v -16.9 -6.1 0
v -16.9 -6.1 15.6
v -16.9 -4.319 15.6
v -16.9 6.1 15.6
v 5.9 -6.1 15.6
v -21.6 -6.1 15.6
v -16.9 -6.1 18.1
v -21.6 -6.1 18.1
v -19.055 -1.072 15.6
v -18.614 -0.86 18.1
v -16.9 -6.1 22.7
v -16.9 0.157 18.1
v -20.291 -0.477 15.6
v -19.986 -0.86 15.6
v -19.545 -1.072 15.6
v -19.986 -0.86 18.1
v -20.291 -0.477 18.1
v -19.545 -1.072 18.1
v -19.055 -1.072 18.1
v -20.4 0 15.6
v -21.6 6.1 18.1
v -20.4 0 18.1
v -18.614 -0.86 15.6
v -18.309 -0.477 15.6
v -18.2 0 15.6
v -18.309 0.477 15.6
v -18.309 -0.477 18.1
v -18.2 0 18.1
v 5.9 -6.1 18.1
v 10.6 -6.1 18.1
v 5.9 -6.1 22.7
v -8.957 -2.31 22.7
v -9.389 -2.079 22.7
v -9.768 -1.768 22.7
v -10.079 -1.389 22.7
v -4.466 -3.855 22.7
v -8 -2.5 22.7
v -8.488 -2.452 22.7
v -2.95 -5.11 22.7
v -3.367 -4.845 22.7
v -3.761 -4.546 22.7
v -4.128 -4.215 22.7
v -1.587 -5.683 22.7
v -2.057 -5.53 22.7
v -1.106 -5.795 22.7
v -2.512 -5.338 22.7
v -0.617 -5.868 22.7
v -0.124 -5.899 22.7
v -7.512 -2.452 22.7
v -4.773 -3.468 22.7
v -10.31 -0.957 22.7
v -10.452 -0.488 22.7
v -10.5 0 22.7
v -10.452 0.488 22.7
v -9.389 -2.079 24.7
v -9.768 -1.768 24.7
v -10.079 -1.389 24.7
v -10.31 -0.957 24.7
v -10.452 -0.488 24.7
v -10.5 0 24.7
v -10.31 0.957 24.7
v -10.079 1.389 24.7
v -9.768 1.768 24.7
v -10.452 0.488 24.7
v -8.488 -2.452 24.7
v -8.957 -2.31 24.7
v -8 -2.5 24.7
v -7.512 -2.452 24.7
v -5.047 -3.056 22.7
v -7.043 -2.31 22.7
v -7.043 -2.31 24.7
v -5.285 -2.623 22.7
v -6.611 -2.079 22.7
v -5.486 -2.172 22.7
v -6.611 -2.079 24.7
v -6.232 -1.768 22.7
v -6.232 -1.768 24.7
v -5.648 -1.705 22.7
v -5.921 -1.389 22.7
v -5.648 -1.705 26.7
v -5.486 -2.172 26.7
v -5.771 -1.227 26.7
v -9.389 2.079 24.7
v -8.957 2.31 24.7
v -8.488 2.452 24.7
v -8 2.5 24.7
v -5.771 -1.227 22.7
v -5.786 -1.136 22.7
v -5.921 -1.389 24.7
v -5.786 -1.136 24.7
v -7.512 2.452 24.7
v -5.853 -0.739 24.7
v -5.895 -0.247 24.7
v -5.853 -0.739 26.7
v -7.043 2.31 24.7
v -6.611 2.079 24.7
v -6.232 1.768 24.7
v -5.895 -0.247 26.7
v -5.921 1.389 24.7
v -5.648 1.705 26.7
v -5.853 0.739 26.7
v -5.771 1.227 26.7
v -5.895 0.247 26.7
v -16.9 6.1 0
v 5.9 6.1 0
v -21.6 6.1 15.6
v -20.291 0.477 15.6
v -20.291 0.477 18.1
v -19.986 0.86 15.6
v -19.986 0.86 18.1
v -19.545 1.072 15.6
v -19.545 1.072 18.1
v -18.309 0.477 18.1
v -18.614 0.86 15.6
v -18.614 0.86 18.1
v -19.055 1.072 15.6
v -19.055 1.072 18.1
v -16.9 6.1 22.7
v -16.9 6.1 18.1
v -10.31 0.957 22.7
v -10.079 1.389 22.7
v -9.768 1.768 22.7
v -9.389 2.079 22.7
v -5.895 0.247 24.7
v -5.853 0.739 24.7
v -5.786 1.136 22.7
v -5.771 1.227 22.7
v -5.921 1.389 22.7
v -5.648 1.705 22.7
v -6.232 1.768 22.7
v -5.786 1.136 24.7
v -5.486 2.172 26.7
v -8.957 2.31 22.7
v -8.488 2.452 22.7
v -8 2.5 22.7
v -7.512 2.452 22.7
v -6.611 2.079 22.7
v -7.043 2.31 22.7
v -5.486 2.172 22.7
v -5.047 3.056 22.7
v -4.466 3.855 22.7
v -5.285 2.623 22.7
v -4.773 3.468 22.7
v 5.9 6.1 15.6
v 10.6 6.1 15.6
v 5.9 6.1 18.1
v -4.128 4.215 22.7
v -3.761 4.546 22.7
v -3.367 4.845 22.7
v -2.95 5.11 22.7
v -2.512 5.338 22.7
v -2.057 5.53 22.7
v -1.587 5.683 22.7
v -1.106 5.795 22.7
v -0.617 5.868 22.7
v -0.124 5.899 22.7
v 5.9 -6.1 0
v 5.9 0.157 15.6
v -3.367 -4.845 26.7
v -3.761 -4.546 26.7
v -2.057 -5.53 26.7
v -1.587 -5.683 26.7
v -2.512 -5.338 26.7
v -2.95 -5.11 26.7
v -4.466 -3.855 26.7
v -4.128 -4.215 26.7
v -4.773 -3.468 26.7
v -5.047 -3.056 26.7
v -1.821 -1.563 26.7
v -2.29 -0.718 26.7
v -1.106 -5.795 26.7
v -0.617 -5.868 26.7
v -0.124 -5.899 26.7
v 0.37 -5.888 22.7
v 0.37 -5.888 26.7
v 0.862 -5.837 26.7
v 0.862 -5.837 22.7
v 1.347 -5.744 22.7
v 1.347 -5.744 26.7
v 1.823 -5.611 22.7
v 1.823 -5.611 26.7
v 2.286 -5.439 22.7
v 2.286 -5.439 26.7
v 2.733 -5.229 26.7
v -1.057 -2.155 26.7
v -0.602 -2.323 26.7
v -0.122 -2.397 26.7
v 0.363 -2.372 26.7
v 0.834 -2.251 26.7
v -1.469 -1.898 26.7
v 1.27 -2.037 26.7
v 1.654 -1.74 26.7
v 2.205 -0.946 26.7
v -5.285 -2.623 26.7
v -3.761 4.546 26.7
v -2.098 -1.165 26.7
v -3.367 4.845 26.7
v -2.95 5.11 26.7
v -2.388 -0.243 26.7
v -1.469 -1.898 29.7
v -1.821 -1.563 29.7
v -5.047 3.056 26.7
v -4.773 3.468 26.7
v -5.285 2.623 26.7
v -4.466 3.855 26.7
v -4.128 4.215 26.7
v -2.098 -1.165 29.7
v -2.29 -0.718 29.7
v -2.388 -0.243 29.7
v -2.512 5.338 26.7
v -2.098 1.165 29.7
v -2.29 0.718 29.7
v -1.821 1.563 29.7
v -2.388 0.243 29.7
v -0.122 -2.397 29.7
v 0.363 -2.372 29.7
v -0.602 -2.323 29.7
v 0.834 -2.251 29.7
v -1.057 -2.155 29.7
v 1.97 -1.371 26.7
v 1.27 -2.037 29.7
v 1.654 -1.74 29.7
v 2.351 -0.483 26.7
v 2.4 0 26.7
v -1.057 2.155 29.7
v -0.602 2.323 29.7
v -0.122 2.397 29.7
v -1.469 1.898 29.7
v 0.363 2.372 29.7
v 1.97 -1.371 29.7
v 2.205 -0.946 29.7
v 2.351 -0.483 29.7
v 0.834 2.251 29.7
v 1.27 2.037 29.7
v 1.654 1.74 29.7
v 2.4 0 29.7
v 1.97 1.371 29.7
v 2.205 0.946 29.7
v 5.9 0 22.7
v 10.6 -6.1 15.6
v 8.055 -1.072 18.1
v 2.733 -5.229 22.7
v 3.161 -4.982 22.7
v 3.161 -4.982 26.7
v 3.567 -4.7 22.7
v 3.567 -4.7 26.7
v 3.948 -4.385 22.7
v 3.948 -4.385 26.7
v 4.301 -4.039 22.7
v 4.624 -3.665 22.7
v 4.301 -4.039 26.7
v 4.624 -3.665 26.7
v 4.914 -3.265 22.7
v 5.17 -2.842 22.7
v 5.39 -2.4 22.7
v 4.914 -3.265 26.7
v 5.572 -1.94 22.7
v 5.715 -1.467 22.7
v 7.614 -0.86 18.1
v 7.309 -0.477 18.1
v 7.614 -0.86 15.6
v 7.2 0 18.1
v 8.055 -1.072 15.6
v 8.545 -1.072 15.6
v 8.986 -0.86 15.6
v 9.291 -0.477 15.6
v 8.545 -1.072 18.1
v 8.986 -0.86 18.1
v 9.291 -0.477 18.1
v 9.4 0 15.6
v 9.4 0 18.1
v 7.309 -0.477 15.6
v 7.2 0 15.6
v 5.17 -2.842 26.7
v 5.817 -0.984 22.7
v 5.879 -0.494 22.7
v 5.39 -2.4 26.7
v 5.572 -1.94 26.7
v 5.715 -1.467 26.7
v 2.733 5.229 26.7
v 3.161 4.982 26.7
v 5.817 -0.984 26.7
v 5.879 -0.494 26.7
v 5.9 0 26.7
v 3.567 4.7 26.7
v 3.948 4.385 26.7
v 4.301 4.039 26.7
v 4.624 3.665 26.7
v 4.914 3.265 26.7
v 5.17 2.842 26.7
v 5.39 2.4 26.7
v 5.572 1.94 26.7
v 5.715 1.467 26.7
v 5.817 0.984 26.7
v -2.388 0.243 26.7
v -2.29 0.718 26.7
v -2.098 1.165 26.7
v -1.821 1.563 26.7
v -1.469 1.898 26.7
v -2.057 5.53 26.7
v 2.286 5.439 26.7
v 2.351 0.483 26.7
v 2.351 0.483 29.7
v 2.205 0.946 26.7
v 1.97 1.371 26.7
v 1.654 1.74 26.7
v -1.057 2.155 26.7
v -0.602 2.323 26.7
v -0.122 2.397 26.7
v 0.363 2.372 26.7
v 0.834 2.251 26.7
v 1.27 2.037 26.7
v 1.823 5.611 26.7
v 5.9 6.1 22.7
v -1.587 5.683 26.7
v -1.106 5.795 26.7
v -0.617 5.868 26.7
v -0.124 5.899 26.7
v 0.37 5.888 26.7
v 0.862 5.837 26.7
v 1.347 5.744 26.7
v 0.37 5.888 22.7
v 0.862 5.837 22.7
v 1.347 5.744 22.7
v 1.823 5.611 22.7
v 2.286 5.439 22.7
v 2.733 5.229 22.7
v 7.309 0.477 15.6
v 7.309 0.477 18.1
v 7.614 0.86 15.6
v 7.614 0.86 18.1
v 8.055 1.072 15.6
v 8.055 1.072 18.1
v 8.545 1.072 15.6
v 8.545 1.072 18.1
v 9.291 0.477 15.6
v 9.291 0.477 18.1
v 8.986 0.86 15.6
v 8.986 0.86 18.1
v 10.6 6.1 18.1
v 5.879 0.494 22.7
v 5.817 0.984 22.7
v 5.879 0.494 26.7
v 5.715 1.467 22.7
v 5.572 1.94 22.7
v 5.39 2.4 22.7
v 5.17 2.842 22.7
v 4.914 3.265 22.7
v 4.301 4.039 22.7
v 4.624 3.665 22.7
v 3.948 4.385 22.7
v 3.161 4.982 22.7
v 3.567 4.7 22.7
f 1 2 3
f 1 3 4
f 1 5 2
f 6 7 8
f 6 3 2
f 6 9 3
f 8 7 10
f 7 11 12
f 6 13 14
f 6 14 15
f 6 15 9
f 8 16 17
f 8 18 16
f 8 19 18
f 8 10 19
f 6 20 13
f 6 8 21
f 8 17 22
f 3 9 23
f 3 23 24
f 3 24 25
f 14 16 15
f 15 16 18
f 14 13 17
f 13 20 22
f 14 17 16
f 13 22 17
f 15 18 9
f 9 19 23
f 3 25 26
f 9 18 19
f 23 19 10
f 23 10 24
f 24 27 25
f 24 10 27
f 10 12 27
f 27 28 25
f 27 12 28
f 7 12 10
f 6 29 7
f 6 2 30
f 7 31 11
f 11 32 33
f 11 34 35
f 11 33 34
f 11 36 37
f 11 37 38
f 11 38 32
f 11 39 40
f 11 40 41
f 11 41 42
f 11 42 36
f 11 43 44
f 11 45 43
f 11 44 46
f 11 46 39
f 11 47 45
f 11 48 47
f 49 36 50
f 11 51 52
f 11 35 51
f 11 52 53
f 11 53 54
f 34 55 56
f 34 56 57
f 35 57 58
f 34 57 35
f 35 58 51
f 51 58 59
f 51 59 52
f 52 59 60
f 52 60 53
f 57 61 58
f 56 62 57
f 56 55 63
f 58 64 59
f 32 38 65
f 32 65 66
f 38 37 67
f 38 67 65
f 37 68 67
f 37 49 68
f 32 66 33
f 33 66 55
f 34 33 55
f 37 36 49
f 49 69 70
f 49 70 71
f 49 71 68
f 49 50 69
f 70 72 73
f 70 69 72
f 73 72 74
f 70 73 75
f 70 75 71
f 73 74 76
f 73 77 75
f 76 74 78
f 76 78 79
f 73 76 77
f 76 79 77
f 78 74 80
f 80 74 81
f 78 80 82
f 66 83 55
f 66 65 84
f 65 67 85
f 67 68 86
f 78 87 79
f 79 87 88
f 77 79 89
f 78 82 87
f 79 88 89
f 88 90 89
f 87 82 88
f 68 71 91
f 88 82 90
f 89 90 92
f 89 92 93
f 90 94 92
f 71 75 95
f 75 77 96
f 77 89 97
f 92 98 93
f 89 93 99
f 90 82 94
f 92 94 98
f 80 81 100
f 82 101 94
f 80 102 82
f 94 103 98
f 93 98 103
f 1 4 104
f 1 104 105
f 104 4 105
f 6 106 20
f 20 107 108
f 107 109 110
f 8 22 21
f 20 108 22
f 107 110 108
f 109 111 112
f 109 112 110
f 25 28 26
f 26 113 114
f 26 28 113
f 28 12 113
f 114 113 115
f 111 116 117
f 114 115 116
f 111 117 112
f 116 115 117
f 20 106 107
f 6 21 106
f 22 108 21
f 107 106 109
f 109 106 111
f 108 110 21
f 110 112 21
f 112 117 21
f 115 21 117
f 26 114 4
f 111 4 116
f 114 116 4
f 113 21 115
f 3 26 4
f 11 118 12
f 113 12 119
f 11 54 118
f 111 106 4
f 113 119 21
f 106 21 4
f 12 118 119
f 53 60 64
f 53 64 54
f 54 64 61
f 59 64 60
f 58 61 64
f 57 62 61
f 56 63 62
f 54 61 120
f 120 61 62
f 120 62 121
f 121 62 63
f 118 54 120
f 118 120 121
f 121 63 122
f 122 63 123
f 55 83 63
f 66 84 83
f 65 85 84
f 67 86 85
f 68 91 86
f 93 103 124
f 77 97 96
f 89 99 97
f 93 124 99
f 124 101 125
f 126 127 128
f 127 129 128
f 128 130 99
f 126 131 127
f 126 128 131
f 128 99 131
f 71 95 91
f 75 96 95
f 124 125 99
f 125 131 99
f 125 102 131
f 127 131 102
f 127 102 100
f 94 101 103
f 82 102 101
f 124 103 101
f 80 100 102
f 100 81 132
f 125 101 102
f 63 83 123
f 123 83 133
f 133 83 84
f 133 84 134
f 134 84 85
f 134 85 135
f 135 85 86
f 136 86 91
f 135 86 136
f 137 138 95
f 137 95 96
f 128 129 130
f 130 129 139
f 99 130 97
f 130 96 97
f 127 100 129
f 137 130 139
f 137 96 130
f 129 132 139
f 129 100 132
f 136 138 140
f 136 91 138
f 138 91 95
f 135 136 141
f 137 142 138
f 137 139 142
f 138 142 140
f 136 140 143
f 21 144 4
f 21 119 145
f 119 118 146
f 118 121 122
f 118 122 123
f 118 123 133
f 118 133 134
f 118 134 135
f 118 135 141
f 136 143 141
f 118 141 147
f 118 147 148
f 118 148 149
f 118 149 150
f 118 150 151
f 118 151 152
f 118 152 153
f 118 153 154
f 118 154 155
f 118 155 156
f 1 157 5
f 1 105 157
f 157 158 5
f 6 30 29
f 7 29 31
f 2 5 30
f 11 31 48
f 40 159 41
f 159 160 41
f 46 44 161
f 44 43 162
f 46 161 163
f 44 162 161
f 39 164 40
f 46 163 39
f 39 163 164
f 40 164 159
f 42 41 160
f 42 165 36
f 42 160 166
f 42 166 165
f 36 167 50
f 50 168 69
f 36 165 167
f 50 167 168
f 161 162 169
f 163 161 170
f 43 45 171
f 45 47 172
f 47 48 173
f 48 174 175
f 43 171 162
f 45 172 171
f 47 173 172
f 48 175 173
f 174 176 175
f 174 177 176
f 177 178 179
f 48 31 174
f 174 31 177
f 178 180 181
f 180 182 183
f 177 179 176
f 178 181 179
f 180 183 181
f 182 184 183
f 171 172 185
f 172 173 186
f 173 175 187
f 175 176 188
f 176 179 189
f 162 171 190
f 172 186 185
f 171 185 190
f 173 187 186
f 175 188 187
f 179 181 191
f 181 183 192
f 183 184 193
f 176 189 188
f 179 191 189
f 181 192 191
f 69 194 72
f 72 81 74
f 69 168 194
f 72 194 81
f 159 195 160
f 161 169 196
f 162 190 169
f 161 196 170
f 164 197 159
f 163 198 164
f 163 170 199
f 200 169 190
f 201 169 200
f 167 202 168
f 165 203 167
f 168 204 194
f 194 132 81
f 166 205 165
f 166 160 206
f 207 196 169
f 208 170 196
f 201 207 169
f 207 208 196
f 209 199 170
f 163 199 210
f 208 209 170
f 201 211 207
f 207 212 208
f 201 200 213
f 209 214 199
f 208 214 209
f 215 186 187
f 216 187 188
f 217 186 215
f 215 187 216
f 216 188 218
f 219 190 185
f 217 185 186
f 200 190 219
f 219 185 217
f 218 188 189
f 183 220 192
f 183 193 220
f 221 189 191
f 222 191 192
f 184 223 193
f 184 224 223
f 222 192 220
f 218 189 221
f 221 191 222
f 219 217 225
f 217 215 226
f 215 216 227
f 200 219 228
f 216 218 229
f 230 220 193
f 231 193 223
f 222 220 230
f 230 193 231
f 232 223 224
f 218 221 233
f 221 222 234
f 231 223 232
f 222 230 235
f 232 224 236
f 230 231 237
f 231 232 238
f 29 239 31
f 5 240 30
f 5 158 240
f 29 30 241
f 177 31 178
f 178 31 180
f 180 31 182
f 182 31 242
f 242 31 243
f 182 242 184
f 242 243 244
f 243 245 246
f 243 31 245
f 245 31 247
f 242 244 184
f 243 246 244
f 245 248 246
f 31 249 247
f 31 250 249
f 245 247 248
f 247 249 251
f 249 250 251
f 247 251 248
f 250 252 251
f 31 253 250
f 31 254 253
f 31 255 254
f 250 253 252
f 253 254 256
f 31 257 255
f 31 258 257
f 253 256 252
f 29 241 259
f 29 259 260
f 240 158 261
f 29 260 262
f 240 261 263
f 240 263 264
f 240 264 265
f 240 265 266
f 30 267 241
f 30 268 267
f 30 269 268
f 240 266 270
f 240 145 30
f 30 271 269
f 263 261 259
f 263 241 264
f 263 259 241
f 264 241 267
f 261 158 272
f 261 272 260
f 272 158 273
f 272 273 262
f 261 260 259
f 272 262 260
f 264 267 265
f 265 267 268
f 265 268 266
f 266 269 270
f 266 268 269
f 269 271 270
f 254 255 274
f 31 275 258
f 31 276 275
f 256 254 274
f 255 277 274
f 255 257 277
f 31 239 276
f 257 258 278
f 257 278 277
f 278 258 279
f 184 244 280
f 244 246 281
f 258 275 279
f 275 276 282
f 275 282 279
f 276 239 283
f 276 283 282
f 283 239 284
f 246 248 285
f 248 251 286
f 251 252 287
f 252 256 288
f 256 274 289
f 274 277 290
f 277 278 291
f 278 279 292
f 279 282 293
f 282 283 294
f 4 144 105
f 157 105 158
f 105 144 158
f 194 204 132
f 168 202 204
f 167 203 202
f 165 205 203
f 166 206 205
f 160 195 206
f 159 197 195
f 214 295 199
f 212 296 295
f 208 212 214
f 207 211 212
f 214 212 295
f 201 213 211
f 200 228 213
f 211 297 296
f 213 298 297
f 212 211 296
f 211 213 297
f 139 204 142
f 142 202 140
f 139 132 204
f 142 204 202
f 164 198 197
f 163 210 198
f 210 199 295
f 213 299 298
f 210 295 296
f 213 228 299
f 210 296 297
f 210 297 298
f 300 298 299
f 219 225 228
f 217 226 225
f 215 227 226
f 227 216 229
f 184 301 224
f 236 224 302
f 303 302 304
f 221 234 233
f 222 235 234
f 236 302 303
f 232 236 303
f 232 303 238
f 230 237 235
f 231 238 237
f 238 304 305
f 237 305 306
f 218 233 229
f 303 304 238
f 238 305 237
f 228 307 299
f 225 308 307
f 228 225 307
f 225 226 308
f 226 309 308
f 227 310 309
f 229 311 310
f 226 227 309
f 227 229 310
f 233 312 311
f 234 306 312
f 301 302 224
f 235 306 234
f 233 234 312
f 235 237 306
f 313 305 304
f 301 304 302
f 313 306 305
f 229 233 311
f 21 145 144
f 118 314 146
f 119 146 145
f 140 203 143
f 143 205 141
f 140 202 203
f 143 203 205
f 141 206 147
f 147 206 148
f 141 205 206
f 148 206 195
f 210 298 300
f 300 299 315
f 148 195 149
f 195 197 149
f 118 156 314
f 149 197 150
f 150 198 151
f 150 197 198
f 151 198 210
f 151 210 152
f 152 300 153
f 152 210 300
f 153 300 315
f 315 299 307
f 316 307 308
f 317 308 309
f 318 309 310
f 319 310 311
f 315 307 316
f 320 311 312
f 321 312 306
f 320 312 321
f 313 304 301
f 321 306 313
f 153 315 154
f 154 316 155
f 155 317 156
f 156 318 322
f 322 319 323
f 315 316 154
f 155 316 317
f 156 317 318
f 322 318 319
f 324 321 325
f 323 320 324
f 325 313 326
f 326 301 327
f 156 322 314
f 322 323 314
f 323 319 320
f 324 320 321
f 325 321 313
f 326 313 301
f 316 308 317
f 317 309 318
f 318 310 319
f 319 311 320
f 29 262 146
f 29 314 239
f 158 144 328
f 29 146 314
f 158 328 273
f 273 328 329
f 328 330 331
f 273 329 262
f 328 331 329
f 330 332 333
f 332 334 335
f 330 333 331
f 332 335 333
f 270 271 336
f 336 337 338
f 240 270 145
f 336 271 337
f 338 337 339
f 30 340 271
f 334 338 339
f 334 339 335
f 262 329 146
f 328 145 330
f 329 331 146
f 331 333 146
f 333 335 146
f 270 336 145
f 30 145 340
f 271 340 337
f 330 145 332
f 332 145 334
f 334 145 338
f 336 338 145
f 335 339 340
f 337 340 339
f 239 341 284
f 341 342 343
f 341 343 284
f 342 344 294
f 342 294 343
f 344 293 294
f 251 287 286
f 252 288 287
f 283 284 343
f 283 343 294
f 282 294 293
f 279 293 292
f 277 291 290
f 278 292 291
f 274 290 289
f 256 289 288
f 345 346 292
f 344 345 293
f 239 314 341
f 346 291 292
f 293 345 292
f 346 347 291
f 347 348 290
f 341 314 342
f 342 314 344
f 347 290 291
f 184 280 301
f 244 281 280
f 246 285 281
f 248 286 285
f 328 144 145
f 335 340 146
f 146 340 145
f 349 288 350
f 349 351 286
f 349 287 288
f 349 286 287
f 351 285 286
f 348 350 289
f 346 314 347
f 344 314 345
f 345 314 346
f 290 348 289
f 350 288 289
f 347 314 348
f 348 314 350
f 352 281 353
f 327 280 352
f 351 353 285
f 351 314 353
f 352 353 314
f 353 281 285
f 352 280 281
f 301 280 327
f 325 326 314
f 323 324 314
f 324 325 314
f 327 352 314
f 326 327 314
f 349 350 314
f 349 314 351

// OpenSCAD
// file: ../lib/lib.scad
// Shared helpers. Include AFTER params.scad (needs TOL, M3_* etc.).
$fa = 4; $fs = 0.5;

module rrect(size, r) {            // 2D rounded rectangle, centred
    r2 = min(r, min(size[0], size[1]) / 2 - 0.001);
    offset(r = r2) square([size[0] - 2 * r2, size[1] - 2 * r2], center = true);
}
module rbox(size, r, center_xy = true) {   // box with rounded vertical edges
    translate(center_xy ? [0, 0, 0] : [size[0] / 2, size[1] / 2, 0])
        linear_extrude(size[2]) rrect([size[0], size[1]], r);
}
module rbox_at(x0, x1, y0, y1, z0, z1, r = 0.01) {
    translate([(x0 + x1) / 2, (y0 + y1) / 2, z0]) rbox([x1 - x0, y1 - y0, z1 - z0], r);
}
module box_at(x0, x1, y0, y1, z0, z1) { translate([x0, y0, z0]) cube([x1 - x0, y1 - y0, z1 - z0]); }

module ring(ro, ri, h) { difference() { cylinder(r = ro, h = h); translate([0, 0, -1]) cylinder(r = ri, h = h + 2); } }
module ring_sector(ro, ri, h, a0, a1) {
    intersection() {
        ring(ro, ri, h);
        linear_extrude(h) polygon(concat([[0, 0]], [for (a = [a0 : (a1 - a0) / 24 : a1]) 2 * ro * [cos(a), sin(a)]]));
    }
}
// teardrop hole along an axis lying horizontal (axis = Y after rotation), printable w/o support
module teardrop2d(d) { union() { circle(d = d); rotate(45) square(d / 2); } }
// vertical heat-set insert hole, opening at z=0 going +z (depth l)
module insert_hole(l = M3_INSERT_L) { translate([0, 0, -EPS]) cylinder(d = M3_INSERT_D, h = l + EPS); }
module m3_clear(l) { translate([0, 0, -EPS]) cylinder(d = M3_CLEAR, h = l + 2 * EPS); }
module m3_csk(l) {  // countersunk clearance from z=0 upward, head at z=0 side
    translate([0, 0, -EPS]) { cylinder(d = M3_CLEAR, h = l + 2 * EPS); cylinder(d1 = 6.4, d2 = M3_CLEAR, h = 1.7); }
}
module card2d() { rrect([CARD_L, CARD_W], CARD_R); }
module card_at(cy, z) { translate([0, cy, z]) linear_extrude(CARD_T) card2d(); }

// ---- gears ----
function _inv(a) = tan(a) - a * PI_ / 180;           // involute function, a in deg
function _invpt(rb, r, ang0, s) = let(al = acos(rb / r), th = ang0 - s * (_inv(al) * 180 / PI_)) [r * cos(th), r * sin(th)];
module involute_gear2d(m, z, pa = 20, clearance = 0.05) {
    rp = m * z / 2; rb = rp * cos(pa); ra = rp + m - clearance; rf = rp - 1.25 * m;
    half = 90 / z + _inv(pa) * 180 / PI_;            // tooth half-angle at base (deg)
    n = 8;
    rs = [for (i = [0 : n]) max(rb, rf) + (ra - max(rb, rf)) * i / n];
    union() {
        circle(r = rf, $fn = z * 4);
        for (k = [0 : z - 1]) rotate(k * 360 / z) polygon(concat(
            [[rf * cos(-half), rf * sin(-half)]],
            [for (r = rs) let(p = _invpt(rb, r, half, 1)) [p[0], -p[1]]],
            [for (i = [n : -1 : 0]) _invpt(rb, rs[i], half, 1)],
            [[rf * cos(half), rf * sin(half)]]));
    }
}
// straight gear rack (2D in XY: teeth along +x, pointing -y, pitch line at y=0)
module gear_rack2d(m, len, back = 3) {
    p = PI_ * m; ad = m; de = 1.25 * m; t = tan(20);
    n = ceil(len / p) + 1;
    intersection() {
        union() {
            translate([0, de]) square([len, back]);
            for (i = [0 : n]) translate([i * p - p / 4, 0]) polygon([
                [-(p / 4 + de * t), de + 0.01], [p / 4 + de * t + 0.01, de + 0.01],
                [p / 4 - ad * t, -ad], [-(p / 4 - ad * t), -ad] ]);
        }
        translate([0, -ad - 1]) square([len, ad + de + back + 2]);
    }
}
// GT2 belt-tooth profile ring (teeth outward), 2D
module gt2_ring2d(n, r_land, ri) {
    union() {
        difference() { circle(r = r_land + 0.01, $fn = n * 2); circle(r = ri, $fn = n * 2); }
        for (k = [0 : n - 1]) rotate(k * 360 / n)
            translate([r_land, 0]) hull() { translate([-0.2, 0]) square([0.2, 1.0], center = true); translate([0.25, 0]) circle(r = 0.5, $fn = 12); }
    }
}
// main file
// Vendor model: MG90S metal-gear micro servo. Local: shaft axis +Z at (0,0); body bottom z=0, top face z=22.7, spline top z=29.7; body extends toward -X.
include <../params.scad>
include <../lib/lib.scad>
module vendor_mg90s() {
    color([0.1,0.1,0.12]) {
        translate([-5.5 - 11.4, -6.1, 0]) cube([22.8, 12.2, 22.7]);
        translate([-5.5 - 16.1, -6.1, 15.6]) difference() { cube([32.2, 12.2, 2.5]); for (x = [2.3, 32.2 - 2.3]) translate([x, 6.1, -1]) cylinder(d = 2.2, h = 5); }
        translate([0, 0, 22.7]) cylinder(d = 11.8, h = 4);
        translate([-8, 0, 22.7]) cylinder(d = 5, h = 2);
    }
    color([0.85,0.85,0.85]) translate([0, 0, 26.7]) cylinder(d = 4.8, h = 3);
}

vendor_mg90s();
